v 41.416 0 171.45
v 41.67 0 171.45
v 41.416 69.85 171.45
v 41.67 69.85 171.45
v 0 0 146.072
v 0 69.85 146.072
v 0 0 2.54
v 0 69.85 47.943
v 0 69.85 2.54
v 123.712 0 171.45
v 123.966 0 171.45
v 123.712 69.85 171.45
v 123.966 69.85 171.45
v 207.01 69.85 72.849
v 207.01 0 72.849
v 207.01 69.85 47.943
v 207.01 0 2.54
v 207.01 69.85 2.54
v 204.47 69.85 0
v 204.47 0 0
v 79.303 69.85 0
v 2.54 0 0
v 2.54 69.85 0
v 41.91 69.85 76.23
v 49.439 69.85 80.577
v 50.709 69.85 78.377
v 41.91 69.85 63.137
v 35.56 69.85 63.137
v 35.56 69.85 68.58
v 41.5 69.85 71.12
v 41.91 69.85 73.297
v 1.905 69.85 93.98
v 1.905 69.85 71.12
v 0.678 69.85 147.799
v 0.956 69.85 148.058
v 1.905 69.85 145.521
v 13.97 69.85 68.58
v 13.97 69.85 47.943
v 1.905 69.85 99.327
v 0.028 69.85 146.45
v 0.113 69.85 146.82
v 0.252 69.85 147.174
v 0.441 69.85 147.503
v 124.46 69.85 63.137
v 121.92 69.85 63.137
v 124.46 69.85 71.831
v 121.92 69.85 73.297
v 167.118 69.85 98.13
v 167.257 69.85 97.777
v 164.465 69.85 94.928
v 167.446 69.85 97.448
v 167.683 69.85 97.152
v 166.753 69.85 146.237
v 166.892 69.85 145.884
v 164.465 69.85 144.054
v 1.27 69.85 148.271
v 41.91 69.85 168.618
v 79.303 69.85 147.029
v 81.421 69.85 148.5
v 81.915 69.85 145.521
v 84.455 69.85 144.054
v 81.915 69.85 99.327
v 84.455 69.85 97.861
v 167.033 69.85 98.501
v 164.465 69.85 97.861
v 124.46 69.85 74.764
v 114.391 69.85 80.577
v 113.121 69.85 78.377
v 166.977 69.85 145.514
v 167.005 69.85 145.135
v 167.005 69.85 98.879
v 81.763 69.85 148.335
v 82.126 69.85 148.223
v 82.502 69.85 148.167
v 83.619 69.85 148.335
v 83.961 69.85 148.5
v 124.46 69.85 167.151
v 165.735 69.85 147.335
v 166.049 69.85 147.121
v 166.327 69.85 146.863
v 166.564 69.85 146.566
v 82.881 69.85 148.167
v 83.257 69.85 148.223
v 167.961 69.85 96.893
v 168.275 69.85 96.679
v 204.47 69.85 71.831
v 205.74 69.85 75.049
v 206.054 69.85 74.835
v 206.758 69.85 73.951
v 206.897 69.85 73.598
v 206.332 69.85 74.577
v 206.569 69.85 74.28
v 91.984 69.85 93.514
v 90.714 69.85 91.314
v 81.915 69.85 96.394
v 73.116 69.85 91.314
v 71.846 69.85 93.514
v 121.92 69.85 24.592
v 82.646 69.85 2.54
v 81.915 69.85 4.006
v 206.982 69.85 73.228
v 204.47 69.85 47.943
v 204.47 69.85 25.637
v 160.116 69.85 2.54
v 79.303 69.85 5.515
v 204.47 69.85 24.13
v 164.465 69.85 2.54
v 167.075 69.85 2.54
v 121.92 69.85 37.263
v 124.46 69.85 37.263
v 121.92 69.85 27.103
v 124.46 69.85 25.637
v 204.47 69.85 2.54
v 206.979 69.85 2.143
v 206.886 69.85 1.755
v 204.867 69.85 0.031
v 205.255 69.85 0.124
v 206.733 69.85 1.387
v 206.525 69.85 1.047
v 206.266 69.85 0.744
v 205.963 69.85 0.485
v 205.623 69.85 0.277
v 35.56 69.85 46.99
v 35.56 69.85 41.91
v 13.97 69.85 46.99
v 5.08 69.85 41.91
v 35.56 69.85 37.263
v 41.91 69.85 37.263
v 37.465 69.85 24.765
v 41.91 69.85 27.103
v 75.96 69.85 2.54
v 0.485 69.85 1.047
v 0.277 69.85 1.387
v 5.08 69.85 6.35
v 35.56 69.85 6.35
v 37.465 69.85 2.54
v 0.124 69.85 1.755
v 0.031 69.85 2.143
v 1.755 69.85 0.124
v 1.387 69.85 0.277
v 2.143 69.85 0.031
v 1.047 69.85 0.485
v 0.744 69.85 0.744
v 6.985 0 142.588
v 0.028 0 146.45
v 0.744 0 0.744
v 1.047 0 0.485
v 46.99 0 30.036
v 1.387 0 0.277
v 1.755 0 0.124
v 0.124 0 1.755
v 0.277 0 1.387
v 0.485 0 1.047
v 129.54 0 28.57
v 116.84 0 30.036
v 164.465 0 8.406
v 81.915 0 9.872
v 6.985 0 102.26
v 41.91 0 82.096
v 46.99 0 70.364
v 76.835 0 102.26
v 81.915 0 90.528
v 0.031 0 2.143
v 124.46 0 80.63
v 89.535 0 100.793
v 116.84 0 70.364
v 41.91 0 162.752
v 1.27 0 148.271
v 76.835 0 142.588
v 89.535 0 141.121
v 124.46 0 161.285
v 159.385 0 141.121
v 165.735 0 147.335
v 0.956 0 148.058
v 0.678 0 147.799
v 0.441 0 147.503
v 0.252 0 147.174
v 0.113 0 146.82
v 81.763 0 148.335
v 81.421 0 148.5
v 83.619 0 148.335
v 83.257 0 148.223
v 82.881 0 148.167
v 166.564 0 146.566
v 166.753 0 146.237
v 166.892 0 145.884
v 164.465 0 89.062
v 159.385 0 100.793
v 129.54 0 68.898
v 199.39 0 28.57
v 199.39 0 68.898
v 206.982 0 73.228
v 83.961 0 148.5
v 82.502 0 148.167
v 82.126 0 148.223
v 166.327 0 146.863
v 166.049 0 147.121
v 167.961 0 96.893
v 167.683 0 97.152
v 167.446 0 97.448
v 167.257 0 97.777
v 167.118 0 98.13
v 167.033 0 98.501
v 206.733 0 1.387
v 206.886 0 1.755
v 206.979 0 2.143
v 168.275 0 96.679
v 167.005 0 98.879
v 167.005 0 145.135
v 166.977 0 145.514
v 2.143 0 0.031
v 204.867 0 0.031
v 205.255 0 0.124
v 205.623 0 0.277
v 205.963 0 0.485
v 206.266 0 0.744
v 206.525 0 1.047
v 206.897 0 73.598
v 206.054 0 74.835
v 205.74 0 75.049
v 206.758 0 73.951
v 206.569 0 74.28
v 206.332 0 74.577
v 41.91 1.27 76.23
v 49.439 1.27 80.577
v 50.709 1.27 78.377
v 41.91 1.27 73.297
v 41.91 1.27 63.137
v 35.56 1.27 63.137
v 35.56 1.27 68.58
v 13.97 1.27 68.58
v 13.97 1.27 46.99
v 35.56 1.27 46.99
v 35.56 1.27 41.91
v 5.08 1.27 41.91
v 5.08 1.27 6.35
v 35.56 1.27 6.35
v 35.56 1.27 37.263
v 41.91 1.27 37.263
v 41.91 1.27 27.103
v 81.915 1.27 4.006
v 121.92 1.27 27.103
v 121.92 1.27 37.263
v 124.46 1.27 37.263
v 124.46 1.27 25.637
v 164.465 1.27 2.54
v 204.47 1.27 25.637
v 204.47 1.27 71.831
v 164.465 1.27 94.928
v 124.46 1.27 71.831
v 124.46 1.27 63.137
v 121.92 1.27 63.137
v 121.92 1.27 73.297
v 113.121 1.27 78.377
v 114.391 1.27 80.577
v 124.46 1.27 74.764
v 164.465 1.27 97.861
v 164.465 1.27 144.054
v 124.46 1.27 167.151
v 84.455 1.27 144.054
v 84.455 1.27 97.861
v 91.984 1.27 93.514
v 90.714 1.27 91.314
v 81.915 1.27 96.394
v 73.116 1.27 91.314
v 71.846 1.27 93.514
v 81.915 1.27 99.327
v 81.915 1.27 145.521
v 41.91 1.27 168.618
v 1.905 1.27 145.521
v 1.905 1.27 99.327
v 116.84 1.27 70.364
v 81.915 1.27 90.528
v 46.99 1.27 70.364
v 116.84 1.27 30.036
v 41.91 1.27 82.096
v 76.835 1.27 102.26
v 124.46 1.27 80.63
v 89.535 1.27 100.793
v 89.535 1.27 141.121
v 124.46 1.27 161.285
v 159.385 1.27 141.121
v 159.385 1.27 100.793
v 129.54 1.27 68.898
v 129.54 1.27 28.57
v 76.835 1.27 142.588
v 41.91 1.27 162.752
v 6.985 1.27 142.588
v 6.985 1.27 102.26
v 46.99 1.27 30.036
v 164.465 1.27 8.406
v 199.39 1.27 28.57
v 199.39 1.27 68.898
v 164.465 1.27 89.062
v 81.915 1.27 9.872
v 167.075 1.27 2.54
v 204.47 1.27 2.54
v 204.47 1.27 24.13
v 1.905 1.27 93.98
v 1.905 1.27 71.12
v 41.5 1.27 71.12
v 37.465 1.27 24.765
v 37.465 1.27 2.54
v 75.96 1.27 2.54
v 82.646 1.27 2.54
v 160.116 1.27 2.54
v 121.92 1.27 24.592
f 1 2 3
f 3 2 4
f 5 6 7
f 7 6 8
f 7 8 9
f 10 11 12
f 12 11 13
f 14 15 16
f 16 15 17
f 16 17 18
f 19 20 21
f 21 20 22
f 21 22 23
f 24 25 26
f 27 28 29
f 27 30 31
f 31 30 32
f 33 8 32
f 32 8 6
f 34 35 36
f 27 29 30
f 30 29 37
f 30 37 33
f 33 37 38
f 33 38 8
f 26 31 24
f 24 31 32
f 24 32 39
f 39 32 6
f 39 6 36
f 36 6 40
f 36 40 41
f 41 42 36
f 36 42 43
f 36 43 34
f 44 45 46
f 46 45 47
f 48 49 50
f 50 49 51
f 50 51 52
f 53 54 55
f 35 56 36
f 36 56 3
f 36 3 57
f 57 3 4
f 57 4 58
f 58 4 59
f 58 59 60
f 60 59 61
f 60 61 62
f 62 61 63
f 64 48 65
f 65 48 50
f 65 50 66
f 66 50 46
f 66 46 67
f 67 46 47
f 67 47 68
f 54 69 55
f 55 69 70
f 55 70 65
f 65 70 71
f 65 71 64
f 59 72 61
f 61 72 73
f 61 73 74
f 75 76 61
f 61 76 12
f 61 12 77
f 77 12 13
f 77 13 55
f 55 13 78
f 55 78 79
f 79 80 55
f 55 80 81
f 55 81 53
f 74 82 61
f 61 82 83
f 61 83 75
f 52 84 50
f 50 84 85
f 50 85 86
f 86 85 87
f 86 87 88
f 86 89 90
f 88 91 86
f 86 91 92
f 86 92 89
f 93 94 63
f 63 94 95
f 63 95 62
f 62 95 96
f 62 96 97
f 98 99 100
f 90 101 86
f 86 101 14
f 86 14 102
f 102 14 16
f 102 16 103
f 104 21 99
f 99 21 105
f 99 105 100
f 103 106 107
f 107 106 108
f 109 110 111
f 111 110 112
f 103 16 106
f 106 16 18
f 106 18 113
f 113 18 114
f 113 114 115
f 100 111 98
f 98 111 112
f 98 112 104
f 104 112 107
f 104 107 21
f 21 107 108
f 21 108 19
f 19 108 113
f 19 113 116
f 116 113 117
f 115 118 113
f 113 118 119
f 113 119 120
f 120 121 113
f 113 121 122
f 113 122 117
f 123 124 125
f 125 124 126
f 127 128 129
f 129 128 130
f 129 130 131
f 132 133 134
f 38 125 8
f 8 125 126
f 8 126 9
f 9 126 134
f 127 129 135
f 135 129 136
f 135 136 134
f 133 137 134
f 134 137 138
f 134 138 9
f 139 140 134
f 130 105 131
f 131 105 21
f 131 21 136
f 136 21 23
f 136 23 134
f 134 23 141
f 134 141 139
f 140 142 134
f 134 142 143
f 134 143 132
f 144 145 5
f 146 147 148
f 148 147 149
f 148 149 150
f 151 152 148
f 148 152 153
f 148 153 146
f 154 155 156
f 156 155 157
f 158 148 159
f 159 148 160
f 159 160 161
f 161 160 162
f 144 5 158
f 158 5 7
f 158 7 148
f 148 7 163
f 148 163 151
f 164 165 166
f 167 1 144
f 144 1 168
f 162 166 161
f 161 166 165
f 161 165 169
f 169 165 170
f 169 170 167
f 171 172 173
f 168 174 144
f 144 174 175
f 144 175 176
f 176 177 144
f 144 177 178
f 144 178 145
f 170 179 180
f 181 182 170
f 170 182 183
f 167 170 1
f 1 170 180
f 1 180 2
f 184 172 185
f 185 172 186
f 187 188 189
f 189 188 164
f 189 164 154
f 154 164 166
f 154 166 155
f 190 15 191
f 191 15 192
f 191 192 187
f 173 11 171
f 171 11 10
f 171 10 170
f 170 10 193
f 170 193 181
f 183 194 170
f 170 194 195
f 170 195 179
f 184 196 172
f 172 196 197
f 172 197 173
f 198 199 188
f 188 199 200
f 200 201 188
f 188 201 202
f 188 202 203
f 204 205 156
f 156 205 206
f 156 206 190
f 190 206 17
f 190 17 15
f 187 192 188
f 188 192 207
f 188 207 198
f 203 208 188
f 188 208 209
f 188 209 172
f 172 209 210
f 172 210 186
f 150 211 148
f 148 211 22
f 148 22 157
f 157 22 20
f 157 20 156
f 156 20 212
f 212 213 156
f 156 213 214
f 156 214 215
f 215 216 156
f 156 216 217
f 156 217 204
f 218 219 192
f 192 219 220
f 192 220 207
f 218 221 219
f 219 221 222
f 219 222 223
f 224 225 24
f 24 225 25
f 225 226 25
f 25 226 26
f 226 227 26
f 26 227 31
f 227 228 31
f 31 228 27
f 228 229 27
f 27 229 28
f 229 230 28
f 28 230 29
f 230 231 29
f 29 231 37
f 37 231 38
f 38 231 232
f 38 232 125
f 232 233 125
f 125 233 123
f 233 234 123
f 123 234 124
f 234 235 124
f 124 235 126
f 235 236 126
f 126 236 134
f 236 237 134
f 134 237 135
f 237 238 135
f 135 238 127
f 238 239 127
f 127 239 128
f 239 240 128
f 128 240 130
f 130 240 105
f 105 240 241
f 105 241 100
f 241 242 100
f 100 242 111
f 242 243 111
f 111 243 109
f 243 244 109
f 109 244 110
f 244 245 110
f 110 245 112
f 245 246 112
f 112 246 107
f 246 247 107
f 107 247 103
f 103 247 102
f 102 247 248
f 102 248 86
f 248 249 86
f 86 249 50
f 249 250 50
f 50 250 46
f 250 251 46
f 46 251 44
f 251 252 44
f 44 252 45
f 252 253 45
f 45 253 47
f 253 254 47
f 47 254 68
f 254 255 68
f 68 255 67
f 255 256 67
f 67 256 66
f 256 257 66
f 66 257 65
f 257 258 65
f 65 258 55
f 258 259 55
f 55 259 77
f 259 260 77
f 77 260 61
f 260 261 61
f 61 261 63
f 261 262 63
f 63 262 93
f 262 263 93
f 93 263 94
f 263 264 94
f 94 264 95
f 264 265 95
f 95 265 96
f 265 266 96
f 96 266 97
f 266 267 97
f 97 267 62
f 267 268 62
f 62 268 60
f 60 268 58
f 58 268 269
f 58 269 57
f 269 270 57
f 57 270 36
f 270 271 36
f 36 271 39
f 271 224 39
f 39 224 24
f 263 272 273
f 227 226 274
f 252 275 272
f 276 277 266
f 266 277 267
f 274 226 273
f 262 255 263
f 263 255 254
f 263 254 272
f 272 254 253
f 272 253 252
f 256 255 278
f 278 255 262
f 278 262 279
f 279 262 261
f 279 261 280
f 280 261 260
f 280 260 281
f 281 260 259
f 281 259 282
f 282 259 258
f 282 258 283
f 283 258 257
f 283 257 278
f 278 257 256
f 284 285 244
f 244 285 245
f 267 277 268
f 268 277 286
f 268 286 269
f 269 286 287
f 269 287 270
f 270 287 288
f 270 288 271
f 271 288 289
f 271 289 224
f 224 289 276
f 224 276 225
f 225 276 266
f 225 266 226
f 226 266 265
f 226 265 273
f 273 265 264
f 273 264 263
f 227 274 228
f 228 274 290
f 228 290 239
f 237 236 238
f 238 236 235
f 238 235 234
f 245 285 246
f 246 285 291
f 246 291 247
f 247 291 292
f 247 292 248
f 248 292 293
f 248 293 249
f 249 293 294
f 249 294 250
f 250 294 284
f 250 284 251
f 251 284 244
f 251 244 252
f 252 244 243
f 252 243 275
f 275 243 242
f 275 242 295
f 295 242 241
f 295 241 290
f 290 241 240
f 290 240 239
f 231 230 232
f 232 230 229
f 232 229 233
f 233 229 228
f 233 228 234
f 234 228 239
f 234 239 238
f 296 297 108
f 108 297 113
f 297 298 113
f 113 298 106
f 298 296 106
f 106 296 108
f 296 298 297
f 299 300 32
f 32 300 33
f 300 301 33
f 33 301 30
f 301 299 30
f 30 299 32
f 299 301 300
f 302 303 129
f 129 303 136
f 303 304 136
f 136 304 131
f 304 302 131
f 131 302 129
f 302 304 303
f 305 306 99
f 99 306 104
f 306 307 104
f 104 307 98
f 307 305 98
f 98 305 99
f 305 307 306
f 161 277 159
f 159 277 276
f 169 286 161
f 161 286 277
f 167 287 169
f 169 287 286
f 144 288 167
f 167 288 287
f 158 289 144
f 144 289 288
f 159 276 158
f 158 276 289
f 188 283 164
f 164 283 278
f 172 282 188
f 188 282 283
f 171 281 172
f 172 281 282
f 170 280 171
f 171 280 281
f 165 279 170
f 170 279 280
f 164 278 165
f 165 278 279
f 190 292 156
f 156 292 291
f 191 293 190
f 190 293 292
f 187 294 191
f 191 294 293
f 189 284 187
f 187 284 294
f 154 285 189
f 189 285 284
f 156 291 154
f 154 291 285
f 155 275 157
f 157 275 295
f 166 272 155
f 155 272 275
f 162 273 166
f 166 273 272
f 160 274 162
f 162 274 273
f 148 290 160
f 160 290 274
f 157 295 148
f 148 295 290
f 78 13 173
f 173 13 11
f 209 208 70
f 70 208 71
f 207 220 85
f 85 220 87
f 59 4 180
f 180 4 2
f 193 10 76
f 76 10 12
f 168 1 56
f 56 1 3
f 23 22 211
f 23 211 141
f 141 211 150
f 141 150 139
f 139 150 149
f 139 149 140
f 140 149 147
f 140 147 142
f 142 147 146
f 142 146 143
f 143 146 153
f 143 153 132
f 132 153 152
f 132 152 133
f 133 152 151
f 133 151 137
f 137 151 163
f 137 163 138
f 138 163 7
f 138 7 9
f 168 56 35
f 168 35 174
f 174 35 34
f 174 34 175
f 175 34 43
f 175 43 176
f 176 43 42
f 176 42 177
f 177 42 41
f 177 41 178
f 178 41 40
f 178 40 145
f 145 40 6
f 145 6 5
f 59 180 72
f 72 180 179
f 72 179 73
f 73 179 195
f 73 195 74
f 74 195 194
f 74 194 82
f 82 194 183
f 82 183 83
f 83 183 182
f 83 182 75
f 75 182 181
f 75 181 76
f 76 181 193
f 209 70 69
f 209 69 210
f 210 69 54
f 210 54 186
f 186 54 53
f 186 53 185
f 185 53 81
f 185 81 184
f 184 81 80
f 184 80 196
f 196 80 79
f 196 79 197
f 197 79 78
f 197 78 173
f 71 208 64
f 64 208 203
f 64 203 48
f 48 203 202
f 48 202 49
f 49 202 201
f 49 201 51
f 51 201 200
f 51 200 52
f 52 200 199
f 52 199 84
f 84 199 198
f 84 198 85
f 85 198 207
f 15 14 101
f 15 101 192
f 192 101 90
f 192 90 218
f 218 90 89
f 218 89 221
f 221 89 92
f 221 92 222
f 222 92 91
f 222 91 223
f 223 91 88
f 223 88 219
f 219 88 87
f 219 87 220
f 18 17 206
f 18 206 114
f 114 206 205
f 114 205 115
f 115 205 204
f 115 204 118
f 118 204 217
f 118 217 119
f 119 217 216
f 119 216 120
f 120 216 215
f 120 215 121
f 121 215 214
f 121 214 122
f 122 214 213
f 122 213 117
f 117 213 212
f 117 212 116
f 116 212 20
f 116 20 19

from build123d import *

# Parameters (mm, degrees)
SKETCH1_W               = 207.01
SKETCH1_H               = 171.45
BOSS_EXTRUDE1_DEPTH     = 69.85
CUT_EXTRUDE1_DEPTH      = 68.58
CUT_EXTRUDE2_DEPTH      = 1
CUT_EXTRUDE2_DEPTH_BACK = 70.85
FILLET3_R               = 2.54


with BuildPart() as part:
    # Sketch1 → Boss-Extrude1 (new body)
    with BuildSketch(Plane(origin=(0, 0, 0), x_dir=(1, 0, 0), z_dir=(0, 1, 0))):
        with Locations((103.505, -85.725)):
            Rectangle(SKETCH1_W, SKETCH1_H)
    extrude(amount=BOSS_EXTRUDE1_DEPTH)

    # Sketch3 → Cut-Extrude1 (cut)
    with BuildSketch(Plane(origin=(0, 69.85, 0), x_dir=(1, 0, 0), z_dir=(0, 1, 0))):
        Polygon((1.905, -93.98), (41.499681461, -71.12), (1.905, -71.12), align=None)
        Polygon((41.91, -76.230101608), (1.905, -99.326999127), (1.905, -145.520794165), (41.91, -168.617691684), (81.915, -145.520794165), (81.915, -99.326999127), (71.846181898, -93.513764285), (73.116181898, -91.314059759), (81.915, -96.394059759), (90.713818102, -91.314059759), (91.983818102, -93.513764285), (84.455, -97.860529443), (84.455, -144.054324481), (124.46, -167.151222), (164.465, -144.054324481), (164.465, -97.860529443), (124.46, -74.763631924), (114.391181898, -80.576866766), (113.121181898, -78.377162241), (121.92, -73.297162241), (121.92, -63.137162241), (124.46, -63.137162241), (124.46, -71.830692557), (164.465, -94.927590076), (204.47, -71.830692557), (204.47, -25.636897519), (164.465, -2.54), (124.46, -25.636897519), (124.46, -37.263367203), (121.92, -37.263367203), (121.92, -27.103367203), (81.915, -4.006469684), (41.91, -27.103367203), (41.91, -37.263367203), (35.56, -37.263367203), (35.56, -6.35), (5.08, -6.35), (5.08, -41.91), (35.56, -41.91), (35.56, -46.99), (13.97, -46.99), (13.97, -68.58), (35.56, -68.58), (35.56, -63.137162241), (41.91, -63.137162241), (41.91, -73.297162241), (50.708818102, -78.377162241), (49.438818102, -80.576866766), align=None)
        Polygon((37.465, -24.765), (75.959829198, -2.54), (37.465, -2.54), align=None)
        Polygon((167.075023065, -2.54), (204.47, -24.13), (204.47, -2.54), align=None)
        Polygon((82.645969059, -2.54), (121.92, -24.592453018), (160.115969059, -2.54), align=None)
    extrude(amount=-CUT_EXTRUDE1_DEPTH, mode=Mode.SUBTRACT)

    # Sketch4 → Cut-Extrude2 (cut, two sides)
    with BuildSketch(Plane(origin=(0, 69.85, 0), x_dir=(1, 0, 0), z_dir=(0, 1, 0))) as cut_extrude2_sk:
        Polygon((207.01, -74.315776706), (167.005, -97.412674225), (167.005, -146.601672765), (123.966434747, -171.45), (167.005, -171.45), (207.01, -171.45), align=None)
        Polygon((0, -147.53821025), (41.416434747, -171.45), (0, -171.45), align=None)
        Polygon((41.670434747, -171.45), (123.712434747, -171.45), (82.691434747, -147.766514608), align=None)
        Polygon((81.915, -9.872348419), (46.99, -30.03630657), (46.99, -70.364222873), (81.915, -90.528181024), (116.84, -70.364222873), (116.84, -30.03630657), align=None)
        Polygon((164.465, -8.405878735), (129.54, -28.569836886), (129.54, -68.897753189), (164.465, -89.061711341), (199.39, -68.897753189), (199.39, -28.569836886), align=None)
        Polygon((41.91, -82.095980343), (6.985, -102.259938494), (6.985, -142.587854797), (41.91, -162.751812949), (76.835, -142.587854797), (76.835, -102.259938494), align=None)
        Polygon((124.46, -80.629510659), (89.535, -100.793468811), (89.535, -141.121385114), (124.46, -161.285343265), (159.385, -141.121385114), (159.385, -100.793468811), align=None)
    extrude(amount=CUT_EXTRUDE2_DEPTH, mode=Mode.SUBTRACT)
    extrude(cut_extrude2_sk.sketch, amount=-CUT_EXTRUDE2_DEPTH_BACK, mode=Mode.SUBTRACT)

    # Fillet3
    fillet3_edges = [part.edges().sort_by_distance(p)[0] for p in [
        (0, 34.925, 147.53821025),
        (82.691434747, 34.925, 147.766514608),
        (207.01, 34.925, 74.315776706),
        (167.005, 34.925, 146.601672765),
        (167.005, 34.925, 97.412674225),
        (0, 34.925, 0),
        (207.01, 34.925, 0),
    ]]
    fillet(fillet3_edges, radius=FILLET3_R)


solid = part.part
